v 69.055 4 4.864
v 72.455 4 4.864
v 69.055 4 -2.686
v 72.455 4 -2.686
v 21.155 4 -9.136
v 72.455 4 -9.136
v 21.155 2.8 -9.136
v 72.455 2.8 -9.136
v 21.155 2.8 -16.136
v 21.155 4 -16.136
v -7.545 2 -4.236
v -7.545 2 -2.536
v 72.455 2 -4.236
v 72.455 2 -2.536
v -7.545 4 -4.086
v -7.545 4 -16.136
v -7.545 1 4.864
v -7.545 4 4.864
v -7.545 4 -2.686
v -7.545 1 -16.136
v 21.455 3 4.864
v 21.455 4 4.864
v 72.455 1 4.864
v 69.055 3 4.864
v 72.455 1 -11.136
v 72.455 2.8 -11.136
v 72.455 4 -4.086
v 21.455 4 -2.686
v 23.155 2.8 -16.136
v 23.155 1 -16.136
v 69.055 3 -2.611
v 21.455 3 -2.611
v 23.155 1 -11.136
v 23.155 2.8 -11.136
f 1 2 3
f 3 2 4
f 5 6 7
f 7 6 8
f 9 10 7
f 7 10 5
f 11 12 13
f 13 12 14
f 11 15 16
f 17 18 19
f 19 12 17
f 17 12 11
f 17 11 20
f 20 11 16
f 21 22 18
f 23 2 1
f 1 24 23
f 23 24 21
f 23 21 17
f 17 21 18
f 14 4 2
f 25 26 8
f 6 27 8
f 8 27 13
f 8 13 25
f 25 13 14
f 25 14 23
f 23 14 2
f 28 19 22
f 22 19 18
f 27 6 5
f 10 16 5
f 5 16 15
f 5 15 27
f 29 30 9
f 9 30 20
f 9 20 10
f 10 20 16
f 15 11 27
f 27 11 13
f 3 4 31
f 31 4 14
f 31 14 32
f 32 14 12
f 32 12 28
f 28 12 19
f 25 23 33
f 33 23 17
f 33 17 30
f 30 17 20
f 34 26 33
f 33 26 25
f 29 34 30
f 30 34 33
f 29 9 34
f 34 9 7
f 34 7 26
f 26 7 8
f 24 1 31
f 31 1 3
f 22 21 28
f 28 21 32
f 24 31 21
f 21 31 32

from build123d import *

# Parameters (mm, degrees)
SKETCH1_W           = 80
SKETCH1_H           = 14
BOSS_EXTRUDE1_DEPTH = 2
SKETCH2_W           = 80
SKETCH2_H           = 7.4
SKETCH2_H_2         = 4.9
BOSS_EXTRUDE2_DEPTH = 2
SKETCH3_W           = 28.7
SKETCH3_H           = 7
BOSS_EXTRUDE3_DEPTH = 4
BOSS_EXTRUDE4_DEPTH = 80
CUT_EXTRUDE1_DEPTH  = 1
BOSS_EXTRUDE5_DEPTH = 1.8
SKETCH7_W           = 47.6
SKETCH7_H           = 7.55
CUT_EXTRUDE2_DEPTH  = 1


with BuildPart() as part:
    # Sketch1 → Boss-Extrude1 (new body)
    with BuildSketch(Plane(origin=(0, 0, 0), x_dir=(1, 0, 0), z_dir=(0, 1, 0))):
        with Locations((32.454545455, 2.136363636)):
            Rectangle(SKETCH1_W, SKETCH1_H)
    extrude(amount=BOSS_EXTRUDE1_DEPTH)

    # Sketch2 → Boss-Extrude2 (add)
    with BuildSketch(Plane(origin=(0, 2, 0), x_dir=(1, 0, 0), z_dir=(0, 1, 0))):
        with Locations((32.454545455, -1.163636364)):
            Rectangle(SKETCH2_W, SKETCH2_H)
        with Locations((32.454545455, 6.686363636)):
            Rectangle(SKETCH2_W, SKETCH2_H_2)
    extrude(amount=BOSS_EXTRUDE2_DEPTH)

    # Sketch3 → Boss-Extrude3 (add)
    with BuildSketch(Plane.XZ):
        with Locations((6.804545455, -12.636363636)):
            Rectangle(SKETCH3_W, SKETCH3_H)
    extrude(amount=-BOSS_EXTRUDE3_DEPTH)

    # Sketch4 → Boss-Extrude4 (add)
    with BuildSketch(Plane.ZY.offset(7.545454545)):
        Polygon((-2.536363636, 2), (-2.686363636, 4), (-2.536363636, 4), align=None)
        Polygon((-4.236363636, 2), (-4.236363636, 4), (-4.086363636, 4), align=None)
    extrude(amount=-BOSS_EXTRUDE4_DEPTH)

    # Sketch5 → Cut-Extrude1 (cut)
    with BuildSketch(Plane.XZ):
        Polygon((-7.545454545, 4.863636364), (72.454545455, 4.863636364), (72.454545455, -9.136363636), (21.154545455, -9.136363636), (21.154545455, -16.136363636), (-7.545454545, -16.136363636), align=None)
    extrude(amount=-CUT_EXTRUDE1_DEPTH, mode=Mode.SUBTRACT)

    # Sketch6 → Boss-Extrude5 (add)
    with BuildSketch(Plane.XZ.offset(-1)):
        Polygon((21.154545455, -9.136363636), (72.454545455, -9.136363636), (72.454545455, -11.136363636), (23.154545455, -11.136363636), (23.154545455, -16.136363636), (21.154545455, -16.136363636), (21.154545455, -11.136363636), align=None)
    extrude(amount=-BOSS_EXTRUDE5_DEPTH)

    # Sketch7 → Cut-Extrude2 (cut)
    with BuildSketch(Plane(origin=(0, 4, 0), x_dir=(1, 0, 0), z_dir=(0, 1, 0))):
        with Locations((45.254545455, -1.088636364)):
            Rectangle(SKETCH7_W, SKETCH7_H)
    extrude(amount=-CUT_EXTRUDE2_DEPTH, mode=Mode.SUBTRACT)


solid = part.part
